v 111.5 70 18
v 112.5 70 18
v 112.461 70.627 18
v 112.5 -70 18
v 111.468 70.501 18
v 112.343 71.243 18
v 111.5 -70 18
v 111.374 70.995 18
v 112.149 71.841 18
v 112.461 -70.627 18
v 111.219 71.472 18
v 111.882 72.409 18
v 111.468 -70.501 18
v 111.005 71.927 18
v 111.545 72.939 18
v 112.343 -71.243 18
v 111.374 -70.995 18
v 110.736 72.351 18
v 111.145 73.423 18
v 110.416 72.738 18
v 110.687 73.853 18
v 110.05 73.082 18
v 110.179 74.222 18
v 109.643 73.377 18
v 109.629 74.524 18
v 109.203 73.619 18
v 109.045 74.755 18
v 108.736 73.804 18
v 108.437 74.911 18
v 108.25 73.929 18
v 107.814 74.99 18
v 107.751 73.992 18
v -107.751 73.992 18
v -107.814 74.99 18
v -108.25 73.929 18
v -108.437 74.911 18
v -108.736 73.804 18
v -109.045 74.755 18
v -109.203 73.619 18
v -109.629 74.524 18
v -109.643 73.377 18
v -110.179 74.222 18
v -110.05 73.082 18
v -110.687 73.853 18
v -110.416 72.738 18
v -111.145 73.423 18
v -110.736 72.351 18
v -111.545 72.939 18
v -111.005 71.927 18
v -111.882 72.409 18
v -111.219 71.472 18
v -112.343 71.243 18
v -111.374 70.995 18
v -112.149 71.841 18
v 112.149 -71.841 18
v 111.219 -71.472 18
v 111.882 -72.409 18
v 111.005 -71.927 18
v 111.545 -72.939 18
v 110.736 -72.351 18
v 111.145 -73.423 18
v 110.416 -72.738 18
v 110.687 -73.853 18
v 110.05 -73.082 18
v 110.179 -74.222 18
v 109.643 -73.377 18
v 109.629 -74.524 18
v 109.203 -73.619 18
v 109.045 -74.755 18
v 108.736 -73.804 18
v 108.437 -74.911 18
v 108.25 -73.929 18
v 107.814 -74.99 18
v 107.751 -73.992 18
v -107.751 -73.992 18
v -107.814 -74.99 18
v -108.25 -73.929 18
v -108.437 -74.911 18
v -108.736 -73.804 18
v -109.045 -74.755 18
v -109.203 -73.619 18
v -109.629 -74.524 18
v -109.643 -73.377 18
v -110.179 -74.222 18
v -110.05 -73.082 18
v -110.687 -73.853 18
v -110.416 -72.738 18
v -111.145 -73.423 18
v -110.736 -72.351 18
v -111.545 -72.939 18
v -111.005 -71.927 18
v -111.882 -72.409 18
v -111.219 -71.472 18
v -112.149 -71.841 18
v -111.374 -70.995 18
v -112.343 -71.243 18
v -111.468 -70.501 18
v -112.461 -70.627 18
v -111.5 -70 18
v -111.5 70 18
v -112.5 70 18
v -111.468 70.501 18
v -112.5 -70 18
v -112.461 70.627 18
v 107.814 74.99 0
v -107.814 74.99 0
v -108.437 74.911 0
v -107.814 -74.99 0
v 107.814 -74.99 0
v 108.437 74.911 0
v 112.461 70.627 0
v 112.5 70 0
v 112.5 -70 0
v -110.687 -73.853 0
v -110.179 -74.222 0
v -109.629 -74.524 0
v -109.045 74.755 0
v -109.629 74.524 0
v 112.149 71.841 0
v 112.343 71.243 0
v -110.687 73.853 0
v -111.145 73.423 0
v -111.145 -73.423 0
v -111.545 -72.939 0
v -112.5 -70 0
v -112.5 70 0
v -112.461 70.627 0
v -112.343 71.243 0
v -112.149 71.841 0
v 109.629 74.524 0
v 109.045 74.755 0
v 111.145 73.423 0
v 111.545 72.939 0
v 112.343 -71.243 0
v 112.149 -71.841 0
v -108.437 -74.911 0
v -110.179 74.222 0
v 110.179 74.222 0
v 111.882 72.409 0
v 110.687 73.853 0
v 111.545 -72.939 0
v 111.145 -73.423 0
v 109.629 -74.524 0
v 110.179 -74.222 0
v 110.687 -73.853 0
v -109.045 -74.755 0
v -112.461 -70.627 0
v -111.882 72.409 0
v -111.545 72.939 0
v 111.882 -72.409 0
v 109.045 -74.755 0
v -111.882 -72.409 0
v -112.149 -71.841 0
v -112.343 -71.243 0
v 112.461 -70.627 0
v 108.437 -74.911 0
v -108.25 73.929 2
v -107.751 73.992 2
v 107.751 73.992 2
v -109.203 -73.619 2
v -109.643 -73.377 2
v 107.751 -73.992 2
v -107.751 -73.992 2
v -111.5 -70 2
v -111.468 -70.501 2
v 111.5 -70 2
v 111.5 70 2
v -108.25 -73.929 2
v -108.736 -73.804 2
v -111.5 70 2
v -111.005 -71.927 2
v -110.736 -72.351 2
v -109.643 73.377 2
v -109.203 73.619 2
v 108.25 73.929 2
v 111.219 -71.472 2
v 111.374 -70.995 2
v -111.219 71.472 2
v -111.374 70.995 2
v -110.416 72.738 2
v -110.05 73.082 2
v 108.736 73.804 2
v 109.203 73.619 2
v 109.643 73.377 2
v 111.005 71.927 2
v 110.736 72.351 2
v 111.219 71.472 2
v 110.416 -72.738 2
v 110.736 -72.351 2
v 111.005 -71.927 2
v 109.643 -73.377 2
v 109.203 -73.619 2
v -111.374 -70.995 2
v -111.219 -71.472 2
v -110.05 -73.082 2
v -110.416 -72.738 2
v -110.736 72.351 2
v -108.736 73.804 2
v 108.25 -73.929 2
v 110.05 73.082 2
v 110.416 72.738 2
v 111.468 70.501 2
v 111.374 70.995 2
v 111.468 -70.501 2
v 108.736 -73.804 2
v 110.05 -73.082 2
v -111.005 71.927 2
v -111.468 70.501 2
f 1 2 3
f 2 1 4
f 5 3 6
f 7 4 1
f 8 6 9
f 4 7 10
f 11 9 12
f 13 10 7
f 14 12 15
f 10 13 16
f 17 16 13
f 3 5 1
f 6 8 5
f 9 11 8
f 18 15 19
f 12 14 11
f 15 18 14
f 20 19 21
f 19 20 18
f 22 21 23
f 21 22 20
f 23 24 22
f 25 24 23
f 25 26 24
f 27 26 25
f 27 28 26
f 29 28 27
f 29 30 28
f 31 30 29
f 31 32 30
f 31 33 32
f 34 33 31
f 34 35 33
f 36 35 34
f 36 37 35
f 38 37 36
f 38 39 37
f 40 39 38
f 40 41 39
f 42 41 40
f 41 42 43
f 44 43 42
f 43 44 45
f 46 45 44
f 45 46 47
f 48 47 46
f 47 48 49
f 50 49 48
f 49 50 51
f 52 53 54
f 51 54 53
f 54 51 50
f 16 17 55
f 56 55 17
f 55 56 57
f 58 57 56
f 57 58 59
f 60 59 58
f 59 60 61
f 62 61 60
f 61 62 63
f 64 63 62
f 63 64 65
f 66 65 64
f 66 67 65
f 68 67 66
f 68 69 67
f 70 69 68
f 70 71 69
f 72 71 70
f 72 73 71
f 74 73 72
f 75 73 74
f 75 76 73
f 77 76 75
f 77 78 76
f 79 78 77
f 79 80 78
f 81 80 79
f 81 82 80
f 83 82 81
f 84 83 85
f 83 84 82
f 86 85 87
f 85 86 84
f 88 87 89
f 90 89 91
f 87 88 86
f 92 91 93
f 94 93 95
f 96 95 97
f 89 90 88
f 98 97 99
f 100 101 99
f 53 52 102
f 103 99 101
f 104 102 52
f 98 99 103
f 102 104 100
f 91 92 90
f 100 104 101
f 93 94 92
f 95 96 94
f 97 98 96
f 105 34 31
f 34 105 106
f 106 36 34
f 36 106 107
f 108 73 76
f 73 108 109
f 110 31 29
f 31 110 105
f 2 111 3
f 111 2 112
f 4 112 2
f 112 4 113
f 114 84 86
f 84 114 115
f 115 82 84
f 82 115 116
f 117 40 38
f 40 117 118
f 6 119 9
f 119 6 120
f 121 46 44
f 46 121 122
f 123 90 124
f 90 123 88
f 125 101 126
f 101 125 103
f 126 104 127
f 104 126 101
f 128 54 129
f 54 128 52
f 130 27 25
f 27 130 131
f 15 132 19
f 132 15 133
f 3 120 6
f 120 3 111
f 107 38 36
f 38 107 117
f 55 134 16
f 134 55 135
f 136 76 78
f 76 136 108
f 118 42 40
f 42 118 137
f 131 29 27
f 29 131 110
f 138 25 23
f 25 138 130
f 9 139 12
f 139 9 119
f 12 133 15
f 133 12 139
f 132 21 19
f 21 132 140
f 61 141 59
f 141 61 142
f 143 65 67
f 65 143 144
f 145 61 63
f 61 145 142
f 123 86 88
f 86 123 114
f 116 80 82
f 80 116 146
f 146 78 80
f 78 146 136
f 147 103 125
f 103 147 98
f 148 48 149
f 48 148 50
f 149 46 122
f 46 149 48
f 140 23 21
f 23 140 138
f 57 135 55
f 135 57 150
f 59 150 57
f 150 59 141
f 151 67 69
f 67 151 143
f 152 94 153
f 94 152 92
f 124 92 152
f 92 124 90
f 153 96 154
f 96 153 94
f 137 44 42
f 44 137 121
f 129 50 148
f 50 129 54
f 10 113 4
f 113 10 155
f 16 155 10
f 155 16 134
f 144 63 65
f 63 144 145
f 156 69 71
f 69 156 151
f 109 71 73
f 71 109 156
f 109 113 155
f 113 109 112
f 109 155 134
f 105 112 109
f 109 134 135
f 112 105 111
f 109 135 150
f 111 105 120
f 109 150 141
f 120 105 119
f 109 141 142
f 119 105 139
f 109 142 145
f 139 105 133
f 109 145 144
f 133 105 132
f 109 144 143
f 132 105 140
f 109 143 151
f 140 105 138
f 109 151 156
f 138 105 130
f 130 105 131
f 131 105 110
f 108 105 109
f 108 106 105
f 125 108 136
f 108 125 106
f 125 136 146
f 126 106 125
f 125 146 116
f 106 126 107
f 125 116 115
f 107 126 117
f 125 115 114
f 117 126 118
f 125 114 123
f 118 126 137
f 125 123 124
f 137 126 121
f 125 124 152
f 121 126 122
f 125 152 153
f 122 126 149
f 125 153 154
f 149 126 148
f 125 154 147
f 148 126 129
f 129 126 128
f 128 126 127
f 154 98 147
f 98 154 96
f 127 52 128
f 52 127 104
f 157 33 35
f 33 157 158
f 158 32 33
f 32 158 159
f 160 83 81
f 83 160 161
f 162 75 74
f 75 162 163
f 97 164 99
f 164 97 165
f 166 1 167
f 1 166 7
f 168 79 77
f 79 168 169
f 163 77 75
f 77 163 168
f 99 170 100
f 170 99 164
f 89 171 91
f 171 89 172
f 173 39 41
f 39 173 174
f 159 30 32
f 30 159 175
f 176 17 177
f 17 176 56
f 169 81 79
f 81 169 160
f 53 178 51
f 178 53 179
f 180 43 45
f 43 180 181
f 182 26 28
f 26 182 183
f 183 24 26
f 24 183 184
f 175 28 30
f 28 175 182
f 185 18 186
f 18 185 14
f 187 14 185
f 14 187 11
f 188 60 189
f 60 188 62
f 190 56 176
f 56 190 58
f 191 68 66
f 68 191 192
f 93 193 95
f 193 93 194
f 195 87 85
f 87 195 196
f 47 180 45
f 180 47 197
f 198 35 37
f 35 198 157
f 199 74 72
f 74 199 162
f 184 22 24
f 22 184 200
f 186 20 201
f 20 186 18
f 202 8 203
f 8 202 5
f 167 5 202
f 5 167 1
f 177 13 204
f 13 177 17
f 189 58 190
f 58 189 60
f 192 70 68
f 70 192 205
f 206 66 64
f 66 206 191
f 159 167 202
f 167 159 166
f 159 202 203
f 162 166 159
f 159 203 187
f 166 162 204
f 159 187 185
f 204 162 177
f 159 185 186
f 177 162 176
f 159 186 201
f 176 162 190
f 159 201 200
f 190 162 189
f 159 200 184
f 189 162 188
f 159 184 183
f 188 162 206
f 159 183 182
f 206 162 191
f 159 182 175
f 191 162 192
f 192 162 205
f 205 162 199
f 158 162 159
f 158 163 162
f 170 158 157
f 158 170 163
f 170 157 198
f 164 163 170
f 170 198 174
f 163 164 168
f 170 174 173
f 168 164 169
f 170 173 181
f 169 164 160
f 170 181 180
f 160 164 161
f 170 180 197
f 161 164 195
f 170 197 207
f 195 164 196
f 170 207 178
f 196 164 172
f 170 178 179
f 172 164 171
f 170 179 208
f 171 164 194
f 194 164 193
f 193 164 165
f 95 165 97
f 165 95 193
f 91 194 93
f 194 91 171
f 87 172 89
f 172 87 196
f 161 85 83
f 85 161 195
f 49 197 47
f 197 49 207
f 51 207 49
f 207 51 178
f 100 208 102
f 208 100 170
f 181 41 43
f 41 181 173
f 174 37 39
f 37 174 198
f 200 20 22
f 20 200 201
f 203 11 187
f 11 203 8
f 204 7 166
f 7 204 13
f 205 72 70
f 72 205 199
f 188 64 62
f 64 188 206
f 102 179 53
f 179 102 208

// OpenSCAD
$fn = 50;


difference() {
	union() {
		hull() {
			translate(v = [-107.5000000000, 70.0000000000, 0]) {
				cylinder(h = 18, r = 5);
			}
			translate(v = [107.5000000000, 70.0000000000, 0]) {
				cylinder(h = 18, r = 5);
			}
			translate(v = [-107.5000000000, -70.0000000000, 0]) {
				cylinder(h = 18, r = 5);
			}
			translate(v = [107.5000000000, -70.0000000000, 0]) {
				cylinder(h = 18, r = 5);
			}
		}
	}
	union() {
		translate(v = [0, 0, 2]) {
			hull() {
				translate(v = [-107.5000000000, 70.0000000000, 0]) {
					cylinder(h = 16, r = 4);
				}
				translate(v = [107.5000000000, 70.0000000000, 0]) {
					cylinder(h = 16, r = 4);
				}
				translate(v = [-107.5000000000, -70.0000000000, 0]) {
					cylinder(h = 16, r = 4);
				}
				translate(v = [107.5000000000, -70.0000000000, 0]) {
					cylinder(h = 16, r = 4);
				}
			}
		}
	}
}
